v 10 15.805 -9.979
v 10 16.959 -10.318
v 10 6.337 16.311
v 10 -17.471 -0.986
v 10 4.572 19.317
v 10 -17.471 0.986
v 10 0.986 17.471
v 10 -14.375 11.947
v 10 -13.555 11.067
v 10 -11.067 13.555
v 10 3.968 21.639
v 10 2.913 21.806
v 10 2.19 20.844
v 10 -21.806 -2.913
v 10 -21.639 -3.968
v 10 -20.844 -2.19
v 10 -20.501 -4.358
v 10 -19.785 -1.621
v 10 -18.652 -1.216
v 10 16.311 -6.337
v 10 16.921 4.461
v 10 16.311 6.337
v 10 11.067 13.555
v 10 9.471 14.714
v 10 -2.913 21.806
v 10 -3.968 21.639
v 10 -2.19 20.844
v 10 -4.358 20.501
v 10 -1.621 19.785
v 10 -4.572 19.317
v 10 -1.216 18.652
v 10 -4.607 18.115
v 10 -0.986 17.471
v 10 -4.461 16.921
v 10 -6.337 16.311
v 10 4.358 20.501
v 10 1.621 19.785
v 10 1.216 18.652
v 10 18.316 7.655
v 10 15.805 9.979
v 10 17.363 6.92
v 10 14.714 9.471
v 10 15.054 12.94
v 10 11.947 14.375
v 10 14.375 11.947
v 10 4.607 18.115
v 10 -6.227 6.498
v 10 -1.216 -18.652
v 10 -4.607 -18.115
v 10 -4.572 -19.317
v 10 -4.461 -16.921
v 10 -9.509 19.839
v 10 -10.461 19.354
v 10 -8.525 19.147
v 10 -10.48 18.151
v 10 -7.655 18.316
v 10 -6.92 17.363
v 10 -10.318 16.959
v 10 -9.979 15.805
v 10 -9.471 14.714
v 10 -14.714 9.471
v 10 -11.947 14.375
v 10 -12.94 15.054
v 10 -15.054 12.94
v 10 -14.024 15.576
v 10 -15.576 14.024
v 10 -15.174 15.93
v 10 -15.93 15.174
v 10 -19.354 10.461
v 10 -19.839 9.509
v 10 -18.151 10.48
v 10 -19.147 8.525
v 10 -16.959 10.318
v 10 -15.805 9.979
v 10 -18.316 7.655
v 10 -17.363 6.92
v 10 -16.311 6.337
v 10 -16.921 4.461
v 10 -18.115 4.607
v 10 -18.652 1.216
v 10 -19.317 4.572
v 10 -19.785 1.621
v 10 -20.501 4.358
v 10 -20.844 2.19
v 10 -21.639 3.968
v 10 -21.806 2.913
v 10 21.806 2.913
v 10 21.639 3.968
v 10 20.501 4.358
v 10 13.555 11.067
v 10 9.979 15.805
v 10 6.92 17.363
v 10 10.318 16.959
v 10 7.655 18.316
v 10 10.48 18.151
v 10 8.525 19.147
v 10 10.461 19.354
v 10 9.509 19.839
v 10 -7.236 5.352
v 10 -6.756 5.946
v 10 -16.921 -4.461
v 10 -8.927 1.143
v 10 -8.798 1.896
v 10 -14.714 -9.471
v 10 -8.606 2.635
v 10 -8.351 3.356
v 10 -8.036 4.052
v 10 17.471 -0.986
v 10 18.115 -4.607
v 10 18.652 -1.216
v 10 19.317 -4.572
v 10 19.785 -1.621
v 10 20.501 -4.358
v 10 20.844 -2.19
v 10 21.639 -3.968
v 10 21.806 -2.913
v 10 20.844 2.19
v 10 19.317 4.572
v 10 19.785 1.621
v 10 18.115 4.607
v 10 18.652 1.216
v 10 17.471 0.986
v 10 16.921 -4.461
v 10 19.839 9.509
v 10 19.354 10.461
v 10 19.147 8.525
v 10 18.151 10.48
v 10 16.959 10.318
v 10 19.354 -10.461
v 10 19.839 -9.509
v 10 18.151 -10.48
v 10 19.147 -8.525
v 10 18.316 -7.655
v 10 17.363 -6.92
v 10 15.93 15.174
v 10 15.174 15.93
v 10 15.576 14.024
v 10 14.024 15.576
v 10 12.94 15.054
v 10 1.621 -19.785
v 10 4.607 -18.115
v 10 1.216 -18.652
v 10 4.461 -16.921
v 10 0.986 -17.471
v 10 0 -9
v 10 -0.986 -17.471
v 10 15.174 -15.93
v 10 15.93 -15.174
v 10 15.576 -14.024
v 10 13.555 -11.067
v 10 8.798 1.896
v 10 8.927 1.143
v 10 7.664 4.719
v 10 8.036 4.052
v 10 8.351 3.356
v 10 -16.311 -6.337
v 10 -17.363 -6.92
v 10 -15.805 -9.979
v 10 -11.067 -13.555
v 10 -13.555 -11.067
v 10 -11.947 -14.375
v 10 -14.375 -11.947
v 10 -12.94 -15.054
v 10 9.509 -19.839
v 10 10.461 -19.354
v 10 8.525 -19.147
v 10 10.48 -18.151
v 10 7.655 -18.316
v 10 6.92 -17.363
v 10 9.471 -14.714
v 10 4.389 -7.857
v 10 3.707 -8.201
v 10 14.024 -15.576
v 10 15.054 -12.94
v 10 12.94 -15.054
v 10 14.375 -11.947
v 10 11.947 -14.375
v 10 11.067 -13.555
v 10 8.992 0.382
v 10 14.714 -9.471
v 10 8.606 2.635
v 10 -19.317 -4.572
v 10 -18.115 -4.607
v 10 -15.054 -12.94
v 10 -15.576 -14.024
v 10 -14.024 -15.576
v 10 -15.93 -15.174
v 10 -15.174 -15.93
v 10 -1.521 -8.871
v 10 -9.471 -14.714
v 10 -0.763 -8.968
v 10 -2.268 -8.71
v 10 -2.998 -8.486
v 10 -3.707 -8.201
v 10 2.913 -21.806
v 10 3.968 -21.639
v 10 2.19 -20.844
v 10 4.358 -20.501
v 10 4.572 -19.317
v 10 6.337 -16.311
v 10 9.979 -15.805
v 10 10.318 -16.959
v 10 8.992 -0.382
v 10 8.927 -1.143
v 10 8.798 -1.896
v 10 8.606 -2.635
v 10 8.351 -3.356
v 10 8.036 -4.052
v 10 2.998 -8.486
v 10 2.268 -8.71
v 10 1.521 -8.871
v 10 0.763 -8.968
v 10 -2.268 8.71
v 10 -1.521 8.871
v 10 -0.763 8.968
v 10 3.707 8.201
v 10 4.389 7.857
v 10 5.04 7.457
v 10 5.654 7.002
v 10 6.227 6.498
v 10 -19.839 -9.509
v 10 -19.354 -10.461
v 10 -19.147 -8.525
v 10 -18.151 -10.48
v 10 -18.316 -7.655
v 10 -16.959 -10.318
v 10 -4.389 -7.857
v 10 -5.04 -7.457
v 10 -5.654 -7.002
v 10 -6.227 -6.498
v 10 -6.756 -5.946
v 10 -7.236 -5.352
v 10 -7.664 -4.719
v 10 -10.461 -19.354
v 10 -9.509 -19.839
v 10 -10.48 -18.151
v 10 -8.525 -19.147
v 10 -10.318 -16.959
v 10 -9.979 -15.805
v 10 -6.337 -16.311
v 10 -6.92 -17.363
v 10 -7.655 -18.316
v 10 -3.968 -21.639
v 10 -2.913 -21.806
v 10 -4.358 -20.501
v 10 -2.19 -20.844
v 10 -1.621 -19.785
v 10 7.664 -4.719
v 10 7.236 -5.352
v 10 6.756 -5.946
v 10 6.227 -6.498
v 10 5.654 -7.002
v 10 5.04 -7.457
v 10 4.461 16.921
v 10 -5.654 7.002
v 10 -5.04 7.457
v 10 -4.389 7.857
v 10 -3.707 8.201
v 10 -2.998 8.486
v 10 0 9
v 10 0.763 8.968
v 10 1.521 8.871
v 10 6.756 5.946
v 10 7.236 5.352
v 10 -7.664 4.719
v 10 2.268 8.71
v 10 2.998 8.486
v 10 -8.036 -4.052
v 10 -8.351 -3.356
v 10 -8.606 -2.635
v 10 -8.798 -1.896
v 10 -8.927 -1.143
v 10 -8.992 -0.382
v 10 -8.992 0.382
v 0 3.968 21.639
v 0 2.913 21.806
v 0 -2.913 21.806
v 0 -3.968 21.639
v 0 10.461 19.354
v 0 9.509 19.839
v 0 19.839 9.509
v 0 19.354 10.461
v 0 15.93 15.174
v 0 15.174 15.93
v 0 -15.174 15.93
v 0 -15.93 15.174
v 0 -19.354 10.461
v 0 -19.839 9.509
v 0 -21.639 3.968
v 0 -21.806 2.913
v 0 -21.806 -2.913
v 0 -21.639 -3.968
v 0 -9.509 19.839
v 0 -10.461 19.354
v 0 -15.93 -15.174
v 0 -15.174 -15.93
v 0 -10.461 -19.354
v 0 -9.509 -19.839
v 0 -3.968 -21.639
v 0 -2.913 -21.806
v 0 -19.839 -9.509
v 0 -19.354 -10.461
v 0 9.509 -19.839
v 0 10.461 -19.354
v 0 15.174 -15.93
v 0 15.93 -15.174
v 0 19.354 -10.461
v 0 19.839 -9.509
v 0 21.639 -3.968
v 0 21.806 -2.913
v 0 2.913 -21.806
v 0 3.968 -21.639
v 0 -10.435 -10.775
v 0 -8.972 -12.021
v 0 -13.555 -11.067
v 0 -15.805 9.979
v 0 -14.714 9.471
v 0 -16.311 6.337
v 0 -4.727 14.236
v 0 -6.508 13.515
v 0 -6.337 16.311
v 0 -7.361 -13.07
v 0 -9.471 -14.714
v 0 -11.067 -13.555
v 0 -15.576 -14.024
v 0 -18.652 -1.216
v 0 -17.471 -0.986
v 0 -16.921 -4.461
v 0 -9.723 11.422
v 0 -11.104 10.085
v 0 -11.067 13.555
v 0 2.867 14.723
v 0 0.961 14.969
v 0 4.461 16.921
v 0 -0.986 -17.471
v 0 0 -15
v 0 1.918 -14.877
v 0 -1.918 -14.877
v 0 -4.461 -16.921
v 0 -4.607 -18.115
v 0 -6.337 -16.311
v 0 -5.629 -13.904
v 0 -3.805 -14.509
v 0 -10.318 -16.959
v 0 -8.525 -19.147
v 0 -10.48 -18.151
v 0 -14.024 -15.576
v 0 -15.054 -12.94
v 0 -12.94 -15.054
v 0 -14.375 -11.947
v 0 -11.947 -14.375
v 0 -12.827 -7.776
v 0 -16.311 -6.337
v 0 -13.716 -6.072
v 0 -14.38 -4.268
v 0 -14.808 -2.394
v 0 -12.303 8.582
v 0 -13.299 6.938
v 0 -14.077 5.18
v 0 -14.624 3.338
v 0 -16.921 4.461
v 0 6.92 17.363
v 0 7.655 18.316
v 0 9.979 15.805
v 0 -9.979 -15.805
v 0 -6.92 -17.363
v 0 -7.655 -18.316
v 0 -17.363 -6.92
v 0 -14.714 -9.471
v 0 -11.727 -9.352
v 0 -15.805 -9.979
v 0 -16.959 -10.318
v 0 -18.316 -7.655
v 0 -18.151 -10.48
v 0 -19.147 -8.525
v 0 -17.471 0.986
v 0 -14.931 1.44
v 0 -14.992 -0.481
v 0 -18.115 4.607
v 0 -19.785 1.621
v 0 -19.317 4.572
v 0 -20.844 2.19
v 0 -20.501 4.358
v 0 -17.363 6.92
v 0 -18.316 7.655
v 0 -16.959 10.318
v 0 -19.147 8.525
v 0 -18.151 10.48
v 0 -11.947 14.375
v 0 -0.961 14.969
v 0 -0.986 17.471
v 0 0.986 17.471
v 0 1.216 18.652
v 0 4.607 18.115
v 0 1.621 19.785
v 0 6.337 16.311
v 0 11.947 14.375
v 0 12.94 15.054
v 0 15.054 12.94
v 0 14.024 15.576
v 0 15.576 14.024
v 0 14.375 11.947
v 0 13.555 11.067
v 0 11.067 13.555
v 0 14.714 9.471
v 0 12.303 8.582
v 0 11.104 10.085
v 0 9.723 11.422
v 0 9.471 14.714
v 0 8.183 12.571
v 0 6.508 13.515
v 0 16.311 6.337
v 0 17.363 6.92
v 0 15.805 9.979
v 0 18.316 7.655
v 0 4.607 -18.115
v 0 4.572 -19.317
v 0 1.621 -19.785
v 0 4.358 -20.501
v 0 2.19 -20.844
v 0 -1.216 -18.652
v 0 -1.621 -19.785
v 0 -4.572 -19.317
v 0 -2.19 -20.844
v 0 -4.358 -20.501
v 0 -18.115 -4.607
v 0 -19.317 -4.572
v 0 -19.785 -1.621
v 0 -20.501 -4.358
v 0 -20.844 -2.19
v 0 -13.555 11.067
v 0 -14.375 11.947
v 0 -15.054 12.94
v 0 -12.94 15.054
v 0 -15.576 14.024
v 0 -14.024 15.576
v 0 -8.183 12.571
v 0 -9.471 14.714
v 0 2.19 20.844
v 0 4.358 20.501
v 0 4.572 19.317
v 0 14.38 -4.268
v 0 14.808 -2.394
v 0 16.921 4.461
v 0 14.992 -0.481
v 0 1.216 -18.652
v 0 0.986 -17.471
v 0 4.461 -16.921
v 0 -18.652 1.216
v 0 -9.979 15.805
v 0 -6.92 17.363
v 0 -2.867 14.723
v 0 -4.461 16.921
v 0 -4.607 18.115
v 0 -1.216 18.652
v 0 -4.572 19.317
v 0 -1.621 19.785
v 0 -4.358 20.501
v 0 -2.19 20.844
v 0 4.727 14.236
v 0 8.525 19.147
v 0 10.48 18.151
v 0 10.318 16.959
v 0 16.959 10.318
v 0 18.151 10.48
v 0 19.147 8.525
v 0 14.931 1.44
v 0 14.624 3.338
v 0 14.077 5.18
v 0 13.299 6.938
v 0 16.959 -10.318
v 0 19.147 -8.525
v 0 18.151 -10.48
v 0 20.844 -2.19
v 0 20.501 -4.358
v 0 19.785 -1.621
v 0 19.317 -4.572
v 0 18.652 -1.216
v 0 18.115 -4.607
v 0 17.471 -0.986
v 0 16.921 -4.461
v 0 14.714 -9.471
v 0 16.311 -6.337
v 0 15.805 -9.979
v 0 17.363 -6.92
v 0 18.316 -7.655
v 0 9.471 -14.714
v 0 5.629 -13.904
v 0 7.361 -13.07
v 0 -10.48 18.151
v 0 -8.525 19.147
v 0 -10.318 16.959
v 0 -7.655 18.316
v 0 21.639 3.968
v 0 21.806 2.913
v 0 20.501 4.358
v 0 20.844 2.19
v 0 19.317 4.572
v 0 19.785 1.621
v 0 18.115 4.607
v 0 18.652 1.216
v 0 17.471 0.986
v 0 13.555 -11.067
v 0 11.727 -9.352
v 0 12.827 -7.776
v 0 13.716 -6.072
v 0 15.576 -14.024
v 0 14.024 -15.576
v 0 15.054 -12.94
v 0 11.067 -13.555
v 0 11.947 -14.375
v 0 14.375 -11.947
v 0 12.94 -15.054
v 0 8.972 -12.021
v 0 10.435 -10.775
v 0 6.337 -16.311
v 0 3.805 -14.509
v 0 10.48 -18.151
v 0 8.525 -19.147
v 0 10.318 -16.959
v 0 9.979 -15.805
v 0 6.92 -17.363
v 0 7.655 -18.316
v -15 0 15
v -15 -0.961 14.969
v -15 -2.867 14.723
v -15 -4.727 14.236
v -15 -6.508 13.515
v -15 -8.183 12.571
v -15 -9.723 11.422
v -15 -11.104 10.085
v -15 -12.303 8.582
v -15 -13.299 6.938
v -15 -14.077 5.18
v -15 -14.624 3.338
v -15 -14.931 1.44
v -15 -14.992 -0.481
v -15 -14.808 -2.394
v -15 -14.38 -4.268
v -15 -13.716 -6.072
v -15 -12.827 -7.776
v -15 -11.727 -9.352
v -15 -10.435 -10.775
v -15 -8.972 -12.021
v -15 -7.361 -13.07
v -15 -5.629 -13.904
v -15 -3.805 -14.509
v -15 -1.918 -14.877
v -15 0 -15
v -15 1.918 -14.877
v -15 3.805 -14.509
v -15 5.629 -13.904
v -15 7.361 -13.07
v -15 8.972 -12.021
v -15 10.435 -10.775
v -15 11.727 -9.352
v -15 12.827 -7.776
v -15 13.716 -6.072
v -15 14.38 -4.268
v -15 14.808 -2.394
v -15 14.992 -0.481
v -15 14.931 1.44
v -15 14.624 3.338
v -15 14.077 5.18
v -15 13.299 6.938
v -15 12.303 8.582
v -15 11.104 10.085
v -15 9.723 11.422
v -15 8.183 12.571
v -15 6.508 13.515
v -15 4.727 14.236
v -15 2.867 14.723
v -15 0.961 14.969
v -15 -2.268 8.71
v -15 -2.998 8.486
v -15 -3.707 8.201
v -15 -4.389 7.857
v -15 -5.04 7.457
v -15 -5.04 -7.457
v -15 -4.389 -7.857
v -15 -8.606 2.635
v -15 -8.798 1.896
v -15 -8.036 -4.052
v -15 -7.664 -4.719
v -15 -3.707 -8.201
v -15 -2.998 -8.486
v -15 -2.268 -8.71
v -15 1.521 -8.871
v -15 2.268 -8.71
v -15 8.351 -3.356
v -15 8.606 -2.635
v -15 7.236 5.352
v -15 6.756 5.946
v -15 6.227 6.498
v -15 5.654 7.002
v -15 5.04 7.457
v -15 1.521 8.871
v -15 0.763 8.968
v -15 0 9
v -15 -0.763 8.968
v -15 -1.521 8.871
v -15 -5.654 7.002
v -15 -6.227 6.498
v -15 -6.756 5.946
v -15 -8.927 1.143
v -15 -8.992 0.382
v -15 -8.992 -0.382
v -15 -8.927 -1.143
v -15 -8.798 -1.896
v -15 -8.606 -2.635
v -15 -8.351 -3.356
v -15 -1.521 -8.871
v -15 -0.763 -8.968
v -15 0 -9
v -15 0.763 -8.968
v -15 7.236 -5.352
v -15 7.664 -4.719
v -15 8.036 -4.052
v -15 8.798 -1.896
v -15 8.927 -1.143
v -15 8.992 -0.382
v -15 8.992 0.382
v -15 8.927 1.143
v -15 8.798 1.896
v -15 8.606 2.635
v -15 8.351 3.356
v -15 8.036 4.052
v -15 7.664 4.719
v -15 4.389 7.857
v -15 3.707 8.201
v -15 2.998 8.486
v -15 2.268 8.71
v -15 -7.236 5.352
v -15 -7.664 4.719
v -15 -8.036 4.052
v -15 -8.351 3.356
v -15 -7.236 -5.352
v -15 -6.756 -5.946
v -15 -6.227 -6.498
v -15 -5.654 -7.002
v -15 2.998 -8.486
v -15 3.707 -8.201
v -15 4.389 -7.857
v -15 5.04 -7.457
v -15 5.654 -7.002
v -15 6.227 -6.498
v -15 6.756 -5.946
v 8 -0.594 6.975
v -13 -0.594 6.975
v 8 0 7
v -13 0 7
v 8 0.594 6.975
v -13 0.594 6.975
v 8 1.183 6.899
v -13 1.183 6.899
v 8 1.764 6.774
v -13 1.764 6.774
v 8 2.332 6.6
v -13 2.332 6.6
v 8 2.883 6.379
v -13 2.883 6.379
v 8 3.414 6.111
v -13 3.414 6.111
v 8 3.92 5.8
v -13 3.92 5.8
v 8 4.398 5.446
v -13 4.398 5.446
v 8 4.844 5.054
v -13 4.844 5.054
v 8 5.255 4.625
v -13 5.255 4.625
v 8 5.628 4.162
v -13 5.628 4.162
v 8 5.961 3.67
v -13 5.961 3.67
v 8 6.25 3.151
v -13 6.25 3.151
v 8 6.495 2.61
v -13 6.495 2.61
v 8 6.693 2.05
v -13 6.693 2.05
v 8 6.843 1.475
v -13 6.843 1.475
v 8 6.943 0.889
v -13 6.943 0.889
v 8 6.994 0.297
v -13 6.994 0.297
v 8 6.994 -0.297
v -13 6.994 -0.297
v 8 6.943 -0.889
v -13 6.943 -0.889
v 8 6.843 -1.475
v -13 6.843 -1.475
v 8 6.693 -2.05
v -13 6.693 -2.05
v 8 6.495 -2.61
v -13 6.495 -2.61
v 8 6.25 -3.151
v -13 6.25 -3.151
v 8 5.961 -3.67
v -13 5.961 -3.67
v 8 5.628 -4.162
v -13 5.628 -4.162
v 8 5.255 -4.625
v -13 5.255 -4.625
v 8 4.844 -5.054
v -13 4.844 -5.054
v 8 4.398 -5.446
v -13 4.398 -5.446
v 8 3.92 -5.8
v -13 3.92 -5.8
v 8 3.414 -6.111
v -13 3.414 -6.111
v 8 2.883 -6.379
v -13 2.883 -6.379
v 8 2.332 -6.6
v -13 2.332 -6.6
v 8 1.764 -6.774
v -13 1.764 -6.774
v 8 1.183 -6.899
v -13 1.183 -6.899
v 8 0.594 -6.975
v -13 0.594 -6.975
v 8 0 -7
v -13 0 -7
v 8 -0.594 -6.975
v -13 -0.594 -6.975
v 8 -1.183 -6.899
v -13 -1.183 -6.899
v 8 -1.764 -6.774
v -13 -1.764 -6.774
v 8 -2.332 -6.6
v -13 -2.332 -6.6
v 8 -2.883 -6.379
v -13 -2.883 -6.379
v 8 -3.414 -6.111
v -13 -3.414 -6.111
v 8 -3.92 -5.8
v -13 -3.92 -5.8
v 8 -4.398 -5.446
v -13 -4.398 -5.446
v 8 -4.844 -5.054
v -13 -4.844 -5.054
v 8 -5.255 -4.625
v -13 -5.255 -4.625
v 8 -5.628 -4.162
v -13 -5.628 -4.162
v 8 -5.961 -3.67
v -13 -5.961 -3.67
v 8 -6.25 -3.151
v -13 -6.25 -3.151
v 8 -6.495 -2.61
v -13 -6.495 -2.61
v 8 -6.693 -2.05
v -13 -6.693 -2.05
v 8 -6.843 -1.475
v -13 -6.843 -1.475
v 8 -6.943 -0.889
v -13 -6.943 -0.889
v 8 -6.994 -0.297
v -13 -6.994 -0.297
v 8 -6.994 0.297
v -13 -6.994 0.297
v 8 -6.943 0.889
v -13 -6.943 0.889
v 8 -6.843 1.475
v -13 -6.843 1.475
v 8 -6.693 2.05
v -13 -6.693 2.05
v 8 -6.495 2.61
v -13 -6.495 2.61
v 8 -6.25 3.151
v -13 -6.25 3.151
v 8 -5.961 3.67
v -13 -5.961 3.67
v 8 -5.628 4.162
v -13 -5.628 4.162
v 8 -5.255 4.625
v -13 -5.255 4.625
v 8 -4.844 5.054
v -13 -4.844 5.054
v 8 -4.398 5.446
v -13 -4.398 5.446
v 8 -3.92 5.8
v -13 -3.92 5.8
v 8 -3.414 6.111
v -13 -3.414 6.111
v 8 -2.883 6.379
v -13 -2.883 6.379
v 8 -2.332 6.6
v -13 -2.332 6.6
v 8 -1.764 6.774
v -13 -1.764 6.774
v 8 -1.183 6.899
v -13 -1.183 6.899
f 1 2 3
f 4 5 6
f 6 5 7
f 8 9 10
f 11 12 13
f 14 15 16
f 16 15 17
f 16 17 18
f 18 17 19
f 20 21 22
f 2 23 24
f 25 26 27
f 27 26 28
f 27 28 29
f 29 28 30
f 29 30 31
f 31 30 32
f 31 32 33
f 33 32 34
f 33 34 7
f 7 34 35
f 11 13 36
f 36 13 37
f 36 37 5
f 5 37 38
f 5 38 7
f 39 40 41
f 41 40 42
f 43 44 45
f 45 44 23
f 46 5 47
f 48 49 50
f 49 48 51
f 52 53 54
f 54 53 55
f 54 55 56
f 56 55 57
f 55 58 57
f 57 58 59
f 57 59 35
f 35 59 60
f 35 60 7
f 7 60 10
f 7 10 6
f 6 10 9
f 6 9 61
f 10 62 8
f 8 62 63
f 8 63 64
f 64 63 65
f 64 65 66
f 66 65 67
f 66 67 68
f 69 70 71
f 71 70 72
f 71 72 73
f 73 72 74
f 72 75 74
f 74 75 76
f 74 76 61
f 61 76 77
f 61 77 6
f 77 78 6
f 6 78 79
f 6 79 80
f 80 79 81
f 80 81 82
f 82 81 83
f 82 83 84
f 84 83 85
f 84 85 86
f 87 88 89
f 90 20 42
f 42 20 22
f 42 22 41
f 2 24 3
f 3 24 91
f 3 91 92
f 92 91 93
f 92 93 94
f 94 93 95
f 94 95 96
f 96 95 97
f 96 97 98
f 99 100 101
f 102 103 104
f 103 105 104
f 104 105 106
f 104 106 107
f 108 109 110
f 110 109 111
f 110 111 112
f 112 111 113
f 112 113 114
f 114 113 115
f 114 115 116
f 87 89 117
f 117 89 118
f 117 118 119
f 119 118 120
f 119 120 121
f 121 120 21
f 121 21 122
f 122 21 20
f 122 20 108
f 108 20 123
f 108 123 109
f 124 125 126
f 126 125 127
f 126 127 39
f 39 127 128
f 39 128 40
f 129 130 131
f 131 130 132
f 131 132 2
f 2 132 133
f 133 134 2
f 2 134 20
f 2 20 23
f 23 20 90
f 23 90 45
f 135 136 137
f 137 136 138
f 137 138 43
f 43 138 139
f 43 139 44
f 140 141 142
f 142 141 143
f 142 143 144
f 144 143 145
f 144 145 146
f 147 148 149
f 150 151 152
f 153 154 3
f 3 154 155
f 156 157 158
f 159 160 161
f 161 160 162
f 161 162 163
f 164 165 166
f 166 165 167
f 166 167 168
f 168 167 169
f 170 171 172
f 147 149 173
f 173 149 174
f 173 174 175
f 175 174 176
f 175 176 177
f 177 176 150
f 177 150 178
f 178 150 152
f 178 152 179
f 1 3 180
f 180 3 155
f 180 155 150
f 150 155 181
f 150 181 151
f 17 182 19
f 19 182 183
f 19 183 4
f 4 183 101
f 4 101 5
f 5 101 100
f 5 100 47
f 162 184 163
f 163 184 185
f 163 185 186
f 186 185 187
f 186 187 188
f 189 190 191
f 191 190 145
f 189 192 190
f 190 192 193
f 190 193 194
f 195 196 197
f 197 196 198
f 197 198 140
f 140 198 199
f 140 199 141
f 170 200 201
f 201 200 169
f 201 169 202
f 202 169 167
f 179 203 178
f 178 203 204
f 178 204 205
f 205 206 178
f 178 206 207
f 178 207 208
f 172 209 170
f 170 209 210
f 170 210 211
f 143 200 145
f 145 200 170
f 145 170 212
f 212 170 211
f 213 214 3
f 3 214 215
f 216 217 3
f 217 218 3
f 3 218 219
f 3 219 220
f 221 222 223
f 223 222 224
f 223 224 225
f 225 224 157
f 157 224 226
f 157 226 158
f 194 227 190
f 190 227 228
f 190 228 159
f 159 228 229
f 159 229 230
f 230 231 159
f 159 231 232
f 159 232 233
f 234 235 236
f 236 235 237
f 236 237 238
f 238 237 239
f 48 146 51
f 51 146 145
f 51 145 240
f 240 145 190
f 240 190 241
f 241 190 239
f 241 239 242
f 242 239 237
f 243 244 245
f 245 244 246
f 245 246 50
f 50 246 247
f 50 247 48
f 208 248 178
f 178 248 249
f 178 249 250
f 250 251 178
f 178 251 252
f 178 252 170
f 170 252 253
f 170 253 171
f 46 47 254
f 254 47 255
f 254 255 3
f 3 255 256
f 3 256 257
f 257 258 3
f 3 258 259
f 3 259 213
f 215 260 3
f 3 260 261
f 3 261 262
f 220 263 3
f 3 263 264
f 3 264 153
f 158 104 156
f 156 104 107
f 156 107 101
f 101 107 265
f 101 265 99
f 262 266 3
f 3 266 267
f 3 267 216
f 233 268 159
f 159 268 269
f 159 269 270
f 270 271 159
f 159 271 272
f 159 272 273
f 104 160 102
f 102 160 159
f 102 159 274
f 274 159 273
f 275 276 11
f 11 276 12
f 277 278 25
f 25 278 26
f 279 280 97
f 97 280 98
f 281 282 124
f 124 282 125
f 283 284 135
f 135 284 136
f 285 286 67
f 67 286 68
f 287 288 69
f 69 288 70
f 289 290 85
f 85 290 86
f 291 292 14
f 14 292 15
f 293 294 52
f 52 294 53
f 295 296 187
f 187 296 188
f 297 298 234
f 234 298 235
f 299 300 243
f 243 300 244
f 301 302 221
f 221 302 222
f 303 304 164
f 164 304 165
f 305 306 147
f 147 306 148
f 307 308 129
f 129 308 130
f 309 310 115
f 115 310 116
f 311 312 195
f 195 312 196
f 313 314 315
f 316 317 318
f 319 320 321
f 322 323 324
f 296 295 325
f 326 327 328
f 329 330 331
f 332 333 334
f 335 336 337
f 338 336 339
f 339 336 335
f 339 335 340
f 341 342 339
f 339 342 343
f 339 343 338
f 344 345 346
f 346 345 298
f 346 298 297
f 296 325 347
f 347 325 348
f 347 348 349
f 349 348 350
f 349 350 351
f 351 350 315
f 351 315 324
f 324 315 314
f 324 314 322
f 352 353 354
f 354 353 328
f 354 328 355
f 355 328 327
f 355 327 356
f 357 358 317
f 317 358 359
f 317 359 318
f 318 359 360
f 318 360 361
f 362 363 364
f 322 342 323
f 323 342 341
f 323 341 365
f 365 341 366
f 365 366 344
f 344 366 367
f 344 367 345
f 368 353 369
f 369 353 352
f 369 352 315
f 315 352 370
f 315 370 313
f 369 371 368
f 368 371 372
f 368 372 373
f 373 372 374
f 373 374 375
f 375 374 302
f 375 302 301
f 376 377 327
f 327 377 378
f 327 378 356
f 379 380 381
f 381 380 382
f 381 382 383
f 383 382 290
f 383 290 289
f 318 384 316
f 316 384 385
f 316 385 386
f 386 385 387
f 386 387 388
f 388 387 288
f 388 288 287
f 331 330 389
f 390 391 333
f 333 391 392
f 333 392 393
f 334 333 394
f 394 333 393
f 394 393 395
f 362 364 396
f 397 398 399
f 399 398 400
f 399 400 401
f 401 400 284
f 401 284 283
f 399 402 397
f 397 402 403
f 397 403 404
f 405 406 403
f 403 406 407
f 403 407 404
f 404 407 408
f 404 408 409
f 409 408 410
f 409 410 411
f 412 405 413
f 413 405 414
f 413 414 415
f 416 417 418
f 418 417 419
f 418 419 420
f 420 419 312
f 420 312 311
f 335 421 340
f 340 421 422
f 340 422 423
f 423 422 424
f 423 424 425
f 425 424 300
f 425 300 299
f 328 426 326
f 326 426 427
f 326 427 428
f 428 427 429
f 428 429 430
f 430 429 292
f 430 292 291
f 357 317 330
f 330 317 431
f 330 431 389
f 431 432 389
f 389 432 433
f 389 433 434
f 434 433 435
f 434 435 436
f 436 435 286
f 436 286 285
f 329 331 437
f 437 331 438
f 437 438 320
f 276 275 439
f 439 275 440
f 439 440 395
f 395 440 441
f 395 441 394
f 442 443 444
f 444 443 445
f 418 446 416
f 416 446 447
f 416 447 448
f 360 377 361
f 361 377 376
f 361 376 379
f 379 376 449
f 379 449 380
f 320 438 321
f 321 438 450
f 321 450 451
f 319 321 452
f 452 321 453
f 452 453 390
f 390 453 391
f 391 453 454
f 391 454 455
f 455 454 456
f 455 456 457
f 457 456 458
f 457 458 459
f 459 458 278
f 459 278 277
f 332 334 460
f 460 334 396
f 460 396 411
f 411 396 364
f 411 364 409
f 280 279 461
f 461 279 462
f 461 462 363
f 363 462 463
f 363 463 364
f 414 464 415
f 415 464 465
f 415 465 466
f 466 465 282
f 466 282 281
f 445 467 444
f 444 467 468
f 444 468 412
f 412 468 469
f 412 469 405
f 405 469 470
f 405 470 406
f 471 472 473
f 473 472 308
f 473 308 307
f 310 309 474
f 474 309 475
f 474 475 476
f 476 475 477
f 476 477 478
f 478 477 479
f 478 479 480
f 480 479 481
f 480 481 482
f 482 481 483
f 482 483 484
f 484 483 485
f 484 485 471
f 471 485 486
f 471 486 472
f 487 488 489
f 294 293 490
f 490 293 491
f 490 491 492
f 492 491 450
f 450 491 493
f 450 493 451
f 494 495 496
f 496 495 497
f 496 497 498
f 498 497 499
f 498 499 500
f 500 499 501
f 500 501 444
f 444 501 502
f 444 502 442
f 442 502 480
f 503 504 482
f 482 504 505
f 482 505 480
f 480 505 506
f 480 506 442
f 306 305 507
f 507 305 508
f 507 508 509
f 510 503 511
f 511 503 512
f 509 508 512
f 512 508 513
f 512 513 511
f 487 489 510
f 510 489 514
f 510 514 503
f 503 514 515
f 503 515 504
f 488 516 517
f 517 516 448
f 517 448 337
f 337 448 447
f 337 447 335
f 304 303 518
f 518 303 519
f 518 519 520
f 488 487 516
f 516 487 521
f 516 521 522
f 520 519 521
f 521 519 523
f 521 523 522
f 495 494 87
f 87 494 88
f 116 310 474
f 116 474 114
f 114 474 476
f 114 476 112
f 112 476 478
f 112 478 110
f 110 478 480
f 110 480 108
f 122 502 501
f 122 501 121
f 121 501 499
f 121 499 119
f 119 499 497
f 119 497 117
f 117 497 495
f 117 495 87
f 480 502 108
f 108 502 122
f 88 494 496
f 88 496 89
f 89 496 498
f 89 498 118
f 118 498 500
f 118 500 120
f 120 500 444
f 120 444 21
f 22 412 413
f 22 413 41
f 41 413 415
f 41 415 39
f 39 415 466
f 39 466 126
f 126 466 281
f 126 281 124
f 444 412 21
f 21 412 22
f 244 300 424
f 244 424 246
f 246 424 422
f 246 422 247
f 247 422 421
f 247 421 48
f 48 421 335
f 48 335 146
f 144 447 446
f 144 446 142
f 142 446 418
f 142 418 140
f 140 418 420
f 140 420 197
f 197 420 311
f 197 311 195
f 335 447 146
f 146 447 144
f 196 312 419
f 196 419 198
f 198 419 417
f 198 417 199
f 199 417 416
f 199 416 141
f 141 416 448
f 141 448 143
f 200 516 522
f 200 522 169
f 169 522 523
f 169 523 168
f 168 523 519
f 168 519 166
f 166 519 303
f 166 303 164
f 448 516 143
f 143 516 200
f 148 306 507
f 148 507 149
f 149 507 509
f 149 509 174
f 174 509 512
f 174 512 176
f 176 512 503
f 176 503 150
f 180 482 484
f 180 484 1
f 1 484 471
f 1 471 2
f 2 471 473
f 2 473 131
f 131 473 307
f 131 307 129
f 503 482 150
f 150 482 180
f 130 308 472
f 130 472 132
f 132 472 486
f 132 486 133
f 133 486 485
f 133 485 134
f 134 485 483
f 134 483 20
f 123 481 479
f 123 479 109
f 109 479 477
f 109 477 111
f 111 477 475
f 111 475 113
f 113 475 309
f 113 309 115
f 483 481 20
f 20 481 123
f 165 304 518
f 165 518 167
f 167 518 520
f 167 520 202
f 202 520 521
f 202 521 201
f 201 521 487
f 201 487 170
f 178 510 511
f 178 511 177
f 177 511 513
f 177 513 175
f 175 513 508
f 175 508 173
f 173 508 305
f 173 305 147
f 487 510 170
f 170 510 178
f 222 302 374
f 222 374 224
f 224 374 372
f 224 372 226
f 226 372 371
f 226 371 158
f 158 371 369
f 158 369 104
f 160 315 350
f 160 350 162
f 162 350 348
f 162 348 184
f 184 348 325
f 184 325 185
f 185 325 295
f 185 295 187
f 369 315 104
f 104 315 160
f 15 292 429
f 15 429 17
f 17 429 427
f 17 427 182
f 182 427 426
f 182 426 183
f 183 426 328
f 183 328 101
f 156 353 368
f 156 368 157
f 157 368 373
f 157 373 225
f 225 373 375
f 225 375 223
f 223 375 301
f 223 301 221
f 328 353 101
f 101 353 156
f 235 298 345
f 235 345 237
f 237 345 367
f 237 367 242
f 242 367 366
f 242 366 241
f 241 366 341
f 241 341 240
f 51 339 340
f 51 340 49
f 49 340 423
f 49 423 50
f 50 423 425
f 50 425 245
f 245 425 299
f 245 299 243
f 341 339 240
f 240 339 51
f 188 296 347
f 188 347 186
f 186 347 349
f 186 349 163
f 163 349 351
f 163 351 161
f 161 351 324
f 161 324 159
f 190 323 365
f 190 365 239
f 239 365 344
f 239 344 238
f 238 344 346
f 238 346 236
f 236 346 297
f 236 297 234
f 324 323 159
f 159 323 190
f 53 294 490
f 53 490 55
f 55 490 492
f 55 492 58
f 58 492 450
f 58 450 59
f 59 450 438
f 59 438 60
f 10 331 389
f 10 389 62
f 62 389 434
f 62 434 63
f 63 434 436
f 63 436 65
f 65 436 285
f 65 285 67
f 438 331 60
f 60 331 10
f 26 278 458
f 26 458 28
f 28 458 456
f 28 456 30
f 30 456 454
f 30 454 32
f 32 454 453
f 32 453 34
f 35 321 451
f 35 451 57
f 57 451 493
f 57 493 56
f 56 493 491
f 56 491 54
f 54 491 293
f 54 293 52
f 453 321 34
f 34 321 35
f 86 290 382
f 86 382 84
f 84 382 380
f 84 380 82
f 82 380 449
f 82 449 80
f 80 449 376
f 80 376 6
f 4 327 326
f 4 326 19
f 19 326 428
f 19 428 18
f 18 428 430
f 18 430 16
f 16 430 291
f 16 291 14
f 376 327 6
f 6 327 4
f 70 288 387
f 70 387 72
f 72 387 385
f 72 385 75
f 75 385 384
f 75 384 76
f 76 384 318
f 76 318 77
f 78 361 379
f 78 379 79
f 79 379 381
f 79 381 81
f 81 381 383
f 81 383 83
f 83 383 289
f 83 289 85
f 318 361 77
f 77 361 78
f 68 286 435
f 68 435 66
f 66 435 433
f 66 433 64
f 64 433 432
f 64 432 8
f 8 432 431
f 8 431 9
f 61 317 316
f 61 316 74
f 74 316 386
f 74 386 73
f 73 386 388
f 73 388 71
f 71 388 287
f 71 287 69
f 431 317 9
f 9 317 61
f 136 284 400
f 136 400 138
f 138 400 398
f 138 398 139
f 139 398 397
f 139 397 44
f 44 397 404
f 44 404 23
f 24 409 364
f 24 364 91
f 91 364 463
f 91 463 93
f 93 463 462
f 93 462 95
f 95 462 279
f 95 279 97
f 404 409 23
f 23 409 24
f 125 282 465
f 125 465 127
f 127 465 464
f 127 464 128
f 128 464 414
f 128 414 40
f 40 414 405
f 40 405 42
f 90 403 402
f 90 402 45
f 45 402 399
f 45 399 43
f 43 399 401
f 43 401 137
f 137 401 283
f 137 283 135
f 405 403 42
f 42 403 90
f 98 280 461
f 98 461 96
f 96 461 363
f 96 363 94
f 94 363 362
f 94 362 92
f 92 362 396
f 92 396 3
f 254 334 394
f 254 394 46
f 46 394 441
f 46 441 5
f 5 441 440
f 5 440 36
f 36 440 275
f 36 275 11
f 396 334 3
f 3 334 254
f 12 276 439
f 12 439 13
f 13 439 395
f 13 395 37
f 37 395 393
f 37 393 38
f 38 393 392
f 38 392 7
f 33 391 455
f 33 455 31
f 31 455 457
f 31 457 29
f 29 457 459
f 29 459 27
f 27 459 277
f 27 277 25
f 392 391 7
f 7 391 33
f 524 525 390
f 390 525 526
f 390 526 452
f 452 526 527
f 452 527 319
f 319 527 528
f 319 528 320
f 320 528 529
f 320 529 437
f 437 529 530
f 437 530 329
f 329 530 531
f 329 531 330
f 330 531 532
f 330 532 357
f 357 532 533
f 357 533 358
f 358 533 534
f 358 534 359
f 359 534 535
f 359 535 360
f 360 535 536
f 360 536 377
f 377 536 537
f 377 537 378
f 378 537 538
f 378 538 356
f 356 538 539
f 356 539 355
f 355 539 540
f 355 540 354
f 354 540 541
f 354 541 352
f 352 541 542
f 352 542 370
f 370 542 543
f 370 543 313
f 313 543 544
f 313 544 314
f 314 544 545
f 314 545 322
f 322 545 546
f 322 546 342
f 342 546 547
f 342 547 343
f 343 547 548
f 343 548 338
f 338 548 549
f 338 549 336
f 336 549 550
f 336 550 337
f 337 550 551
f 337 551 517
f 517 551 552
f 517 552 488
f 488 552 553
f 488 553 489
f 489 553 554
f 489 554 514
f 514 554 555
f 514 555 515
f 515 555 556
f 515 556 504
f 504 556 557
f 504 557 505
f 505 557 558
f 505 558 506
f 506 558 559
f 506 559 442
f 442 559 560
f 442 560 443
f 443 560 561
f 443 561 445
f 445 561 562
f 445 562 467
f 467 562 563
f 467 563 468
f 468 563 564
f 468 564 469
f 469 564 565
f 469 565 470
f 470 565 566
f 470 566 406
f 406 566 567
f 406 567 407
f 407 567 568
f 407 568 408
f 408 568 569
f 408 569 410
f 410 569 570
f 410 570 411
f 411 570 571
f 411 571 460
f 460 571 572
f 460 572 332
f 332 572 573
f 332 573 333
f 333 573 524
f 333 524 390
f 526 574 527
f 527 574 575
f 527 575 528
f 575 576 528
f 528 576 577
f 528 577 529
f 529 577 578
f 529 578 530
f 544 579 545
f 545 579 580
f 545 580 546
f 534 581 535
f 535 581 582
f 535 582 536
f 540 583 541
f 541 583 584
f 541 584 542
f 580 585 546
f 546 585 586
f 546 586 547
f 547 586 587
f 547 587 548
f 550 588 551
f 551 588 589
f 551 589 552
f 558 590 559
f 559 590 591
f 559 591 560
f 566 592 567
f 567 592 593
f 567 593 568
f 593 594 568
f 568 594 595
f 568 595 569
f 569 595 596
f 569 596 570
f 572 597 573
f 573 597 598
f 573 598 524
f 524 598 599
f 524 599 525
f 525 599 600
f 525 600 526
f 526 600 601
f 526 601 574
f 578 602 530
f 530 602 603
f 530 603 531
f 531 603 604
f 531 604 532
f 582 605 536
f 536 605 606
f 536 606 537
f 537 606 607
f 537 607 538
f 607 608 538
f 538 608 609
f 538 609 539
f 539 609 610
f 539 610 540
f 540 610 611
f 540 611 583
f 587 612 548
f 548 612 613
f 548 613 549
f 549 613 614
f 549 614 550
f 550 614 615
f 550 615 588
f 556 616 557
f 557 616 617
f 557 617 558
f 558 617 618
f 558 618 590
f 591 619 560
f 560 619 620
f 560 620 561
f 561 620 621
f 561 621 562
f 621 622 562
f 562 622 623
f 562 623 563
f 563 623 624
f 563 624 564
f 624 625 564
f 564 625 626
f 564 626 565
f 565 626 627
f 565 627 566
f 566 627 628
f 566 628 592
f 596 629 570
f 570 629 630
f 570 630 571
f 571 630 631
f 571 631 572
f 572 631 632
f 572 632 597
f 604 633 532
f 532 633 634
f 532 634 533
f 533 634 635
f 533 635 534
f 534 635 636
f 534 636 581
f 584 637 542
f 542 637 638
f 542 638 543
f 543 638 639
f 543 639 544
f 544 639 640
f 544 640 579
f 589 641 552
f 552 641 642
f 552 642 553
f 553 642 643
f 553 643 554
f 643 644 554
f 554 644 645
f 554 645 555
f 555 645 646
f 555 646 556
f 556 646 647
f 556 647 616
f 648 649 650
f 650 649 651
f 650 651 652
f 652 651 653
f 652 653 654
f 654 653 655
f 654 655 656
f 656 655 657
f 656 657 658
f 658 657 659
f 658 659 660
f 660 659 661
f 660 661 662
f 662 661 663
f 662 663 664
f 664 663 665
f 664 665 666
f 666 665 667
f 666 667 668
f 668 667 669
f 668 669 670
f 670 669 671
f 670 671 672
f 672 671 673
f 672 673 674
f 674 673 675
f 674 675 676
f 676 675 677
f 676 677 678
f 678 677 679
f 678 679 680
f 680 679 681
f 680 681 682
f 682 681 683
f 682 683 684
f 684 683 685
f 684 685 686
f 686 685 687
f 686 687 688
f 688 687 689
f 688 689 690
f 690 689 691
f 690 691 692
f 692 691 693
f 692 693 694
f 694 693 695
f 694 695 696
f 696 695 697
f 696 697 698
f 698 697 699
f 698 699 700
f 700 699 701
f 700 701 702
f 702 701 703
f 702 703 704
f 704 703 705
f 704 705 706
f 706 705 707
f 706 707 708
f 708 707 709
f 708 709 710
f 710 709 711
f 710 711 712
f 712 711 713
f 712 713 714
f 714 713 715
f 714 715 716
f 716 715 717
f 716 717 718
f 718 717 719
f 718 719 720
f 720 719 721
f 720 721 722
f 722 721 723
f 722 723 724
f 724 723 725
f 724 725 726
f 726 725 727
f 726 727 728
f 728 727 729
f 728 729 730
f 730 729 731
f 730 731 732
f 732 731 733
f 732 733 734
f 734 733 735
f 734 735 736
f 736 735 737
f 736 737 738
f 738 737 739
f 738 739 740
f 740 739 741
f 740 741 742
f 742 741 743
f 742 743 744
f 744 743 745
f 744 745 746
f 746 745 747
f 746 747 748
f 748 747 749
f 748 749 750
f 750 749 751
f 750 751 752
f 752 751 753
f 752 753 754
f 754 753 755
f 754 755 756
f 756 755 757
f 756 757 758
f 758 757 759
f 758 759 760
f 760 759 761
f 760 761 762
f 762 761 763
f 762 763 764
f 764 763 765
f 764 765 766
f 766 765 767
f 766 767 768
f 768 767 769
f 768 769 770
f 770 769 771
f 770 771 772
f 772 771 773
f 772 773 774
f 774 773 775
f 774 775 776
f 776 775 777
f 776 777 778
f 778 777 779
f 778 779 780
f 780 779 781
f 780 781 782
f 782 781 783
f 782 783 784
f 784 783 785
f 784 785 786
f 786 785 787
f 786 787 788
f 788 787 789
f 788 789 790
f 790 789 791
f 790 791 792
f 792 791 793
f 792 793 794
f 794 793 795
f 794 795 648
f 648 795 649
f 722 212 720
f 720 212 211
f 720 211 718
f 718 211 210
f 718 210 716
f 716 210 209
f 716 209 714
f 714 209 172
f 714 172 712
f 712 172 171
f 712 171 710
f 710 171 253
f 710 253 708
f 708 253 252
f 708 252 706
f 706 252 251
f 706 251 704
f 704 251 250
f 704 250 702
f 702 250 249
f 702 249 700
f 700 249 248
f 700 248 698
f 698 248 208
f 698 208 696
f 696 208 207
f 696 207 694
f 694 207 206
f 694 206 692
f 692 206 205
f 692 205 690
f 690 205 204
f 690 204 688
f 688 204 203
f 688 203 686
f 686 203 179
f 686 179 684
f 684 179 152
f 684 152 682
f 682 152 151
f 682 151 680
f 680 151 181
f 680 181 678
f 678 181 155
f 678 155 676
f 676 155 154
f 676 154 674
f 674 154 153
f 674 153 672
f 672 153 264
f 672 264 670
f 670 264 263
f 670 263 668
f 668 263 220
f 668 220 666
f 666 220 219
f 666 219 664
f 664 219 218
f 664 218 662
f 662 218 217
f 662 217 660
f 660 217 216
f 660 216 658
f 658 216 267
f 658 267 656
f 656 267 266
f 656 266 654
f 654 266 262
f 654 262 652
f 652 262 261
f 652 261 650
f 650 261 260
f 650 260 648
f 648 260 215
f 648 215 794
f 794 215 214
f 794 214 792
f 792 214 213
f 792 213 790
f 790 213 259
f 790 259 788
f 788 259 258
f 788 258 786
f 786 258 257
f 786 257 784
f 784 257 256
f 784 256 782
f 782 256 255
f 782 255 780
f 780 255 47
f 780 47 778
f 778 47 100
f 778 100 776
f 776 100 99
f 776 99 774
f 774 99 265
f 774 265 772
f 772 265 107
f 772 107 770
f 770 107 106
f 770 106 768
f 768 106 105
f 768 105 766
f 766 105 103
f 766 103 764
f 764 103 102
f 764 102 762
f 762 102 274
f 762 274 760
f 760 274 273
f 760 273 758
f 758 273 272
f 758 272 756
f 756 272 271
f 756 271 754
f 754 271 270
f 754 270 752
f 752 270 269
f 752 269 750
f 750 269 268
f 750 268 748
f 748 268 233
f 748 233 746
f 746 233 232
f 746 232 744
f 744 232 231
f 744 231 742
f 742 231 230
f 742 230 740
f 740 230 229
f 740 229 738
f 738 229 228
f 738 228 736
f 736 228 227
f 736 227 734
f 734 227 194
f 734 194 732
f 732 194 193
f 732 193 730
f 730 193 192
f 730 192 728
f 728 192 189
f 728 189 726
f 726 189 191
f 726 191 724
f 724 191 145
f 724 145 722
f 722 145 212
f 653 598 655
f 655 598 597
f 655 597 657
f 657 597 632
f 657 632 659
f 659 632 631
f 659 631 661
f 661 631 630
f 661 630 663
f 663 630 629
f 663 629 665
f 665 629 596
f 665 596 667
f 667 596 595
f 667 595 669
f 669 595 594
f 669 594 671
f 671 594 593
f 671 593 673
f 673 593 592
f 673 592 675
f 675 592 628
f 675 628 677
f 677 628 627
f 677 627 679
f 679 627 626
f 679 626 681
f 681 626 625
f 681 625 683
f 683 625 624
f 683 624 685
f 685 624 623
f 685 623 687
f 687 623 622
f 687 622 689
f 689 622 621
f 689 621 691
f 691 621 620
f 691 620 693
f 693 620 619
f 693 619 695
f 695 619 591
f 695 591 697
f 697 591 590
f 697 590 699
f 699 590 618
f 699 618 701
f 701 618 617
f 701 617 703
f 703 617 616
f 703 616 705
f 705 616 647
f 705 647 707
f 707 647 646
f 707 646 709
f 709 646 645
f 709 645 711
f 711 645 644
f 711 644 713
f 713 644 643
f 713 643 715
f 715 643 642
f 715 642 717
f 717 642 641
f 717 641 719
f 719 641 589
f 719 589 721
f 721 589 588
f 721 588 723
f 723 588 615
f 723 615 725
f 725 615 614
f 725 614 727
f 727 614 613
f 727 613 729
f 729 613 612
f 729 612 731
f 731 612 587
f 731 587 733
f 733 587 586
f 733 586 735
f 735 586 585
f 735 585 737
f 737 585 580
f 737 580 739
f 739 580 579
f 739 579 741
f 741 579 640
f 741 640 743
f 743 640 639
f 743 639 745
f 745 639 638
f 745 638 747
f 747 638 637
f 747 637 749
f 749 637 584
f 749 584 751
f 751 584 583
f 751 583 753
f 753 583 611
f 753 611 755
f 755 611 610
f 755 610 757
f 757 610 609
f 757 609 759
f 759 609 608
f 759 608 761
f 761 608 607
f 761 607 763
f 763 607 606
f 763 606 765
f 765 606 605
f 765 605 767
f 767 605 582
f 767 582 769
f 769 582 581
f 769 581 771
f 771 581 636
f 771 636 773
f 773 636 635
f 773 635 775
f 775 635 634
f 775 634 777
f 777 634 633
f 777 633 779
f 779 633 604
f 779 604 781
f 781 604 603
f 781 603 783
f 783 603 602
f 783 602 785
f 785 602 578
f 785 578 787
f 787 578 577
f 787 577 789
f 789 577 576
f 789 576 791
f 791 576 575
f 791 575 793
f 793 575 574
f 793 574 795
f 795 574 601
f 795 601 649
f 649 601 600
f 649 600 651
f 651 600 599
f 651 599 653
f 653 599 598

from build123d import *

# Parameters (mm, degrees)
BASPROSKE_W      = 10
BASPROSKE_H      = 22
TOOTHCUT_DEPTH   = 33.680269277
TEETHCUTS_COUNT  = 20
TEETHCUTS_ANGLE  = 342
HUBNEAONESKE_R   = 15
HUBNEARONE_DEPTH = 15.0000508
BORSKE_R         = 7
BORE_DEPTH       = 25.0000508
CHAMFER_1_SIZE   = 2


with BuildPart() as part:
    # BasProSke → Base-Revolve (revolve)
    with BuildSketch(Plane(origin=(0, 0, 0), x_dir=(1, 0, 0), z_dir=(0, 1, 0)), mode=Mode.PRIVATE) as base_revolve_sk:
        with Locations((5, 11)):
            Rectangle(BASPROSKE_W, BASPROSKE_H)
    revolve(base_revolve_sk.sketch.rotate(Axis((-10, 0, 0), (1, 0, 0)), 180), axis=Axis((-10, 0, 0), (1, 0, 0)))

    # TooCutSke → ToothCut (cut, through all)
    with BuildSketch(Plane(origin=(0, 0, 0), x_dir=(0, 0, -1), z_dir=(1, 0, 0))):
        with BuildLine():
            ThreePointArc((0.986171591, 17.471189616), (0, 17.499), (-0.986171591, 17.471189616))
            ThreePointArc((-0.986171591, 17.471189616), (-1.626916196, 19.798789858), (-2.932850173, 21.829260982))
            ThreePointArc((-2.932850173, 21.829260982), (0, 22.0254), (2.932850173, 21.829260982))
            ThreePointArc((2.932850173, 21.829260982), (1.626916196, 19.798789858), (0.986171591, 17.471189616))
        make_face()
    toothcut = extrude(amount=TOOTHCUT_DEPTH, mode=Mode.SUBTRACT)

    # TeethCuts: ToothCut ×20 about axis
    teethcuts_axis = Axis((-10, 0, 0), (1, 0, 0))
    for i in range(1, TEETHCUTS_COUNT):
        add(toothcut.rotate(teethcuts_axis, i * TEETHCUTS_ANGLE / (TEETHCUTS_COUNT - 1)), mode=Mode.SUBTRACT)

    # HubNeaOneSke → HubNearOne (add)
    with BuildSketch(Plane.ZY):
        with Locations(Location((0, 0, 0), (0, 0, 180))):
            Circle(HUBNEAONESKE_R)
    extrude(amount=HUBNEARONE_DEPTH)

    # BorSke → Bore (cut, symmetric)
    with BuildSketch(Plane(origin=(0, 0, 0), x_dir=(0, 0, -1), z_dir=(1, 0, 0))):
        with Locations(Location((0, 0, 0), (0, 0, 180))):
            Circle(BORSKE_R)
    extrude(amount=BORE_DEPTH, both=True, mode=Mode.SUBTRACT)

    # 倒角1
    chamfer_1_edges = [part.edges().sort_by_distance(p)[0] for p in [
        (-15.0000508, 0, -7),
        (10, 0, -7),
    ]]
    chamfer(chamfer_1_edges, length=CHAMFER_1_SIZE)


solid = part.part
